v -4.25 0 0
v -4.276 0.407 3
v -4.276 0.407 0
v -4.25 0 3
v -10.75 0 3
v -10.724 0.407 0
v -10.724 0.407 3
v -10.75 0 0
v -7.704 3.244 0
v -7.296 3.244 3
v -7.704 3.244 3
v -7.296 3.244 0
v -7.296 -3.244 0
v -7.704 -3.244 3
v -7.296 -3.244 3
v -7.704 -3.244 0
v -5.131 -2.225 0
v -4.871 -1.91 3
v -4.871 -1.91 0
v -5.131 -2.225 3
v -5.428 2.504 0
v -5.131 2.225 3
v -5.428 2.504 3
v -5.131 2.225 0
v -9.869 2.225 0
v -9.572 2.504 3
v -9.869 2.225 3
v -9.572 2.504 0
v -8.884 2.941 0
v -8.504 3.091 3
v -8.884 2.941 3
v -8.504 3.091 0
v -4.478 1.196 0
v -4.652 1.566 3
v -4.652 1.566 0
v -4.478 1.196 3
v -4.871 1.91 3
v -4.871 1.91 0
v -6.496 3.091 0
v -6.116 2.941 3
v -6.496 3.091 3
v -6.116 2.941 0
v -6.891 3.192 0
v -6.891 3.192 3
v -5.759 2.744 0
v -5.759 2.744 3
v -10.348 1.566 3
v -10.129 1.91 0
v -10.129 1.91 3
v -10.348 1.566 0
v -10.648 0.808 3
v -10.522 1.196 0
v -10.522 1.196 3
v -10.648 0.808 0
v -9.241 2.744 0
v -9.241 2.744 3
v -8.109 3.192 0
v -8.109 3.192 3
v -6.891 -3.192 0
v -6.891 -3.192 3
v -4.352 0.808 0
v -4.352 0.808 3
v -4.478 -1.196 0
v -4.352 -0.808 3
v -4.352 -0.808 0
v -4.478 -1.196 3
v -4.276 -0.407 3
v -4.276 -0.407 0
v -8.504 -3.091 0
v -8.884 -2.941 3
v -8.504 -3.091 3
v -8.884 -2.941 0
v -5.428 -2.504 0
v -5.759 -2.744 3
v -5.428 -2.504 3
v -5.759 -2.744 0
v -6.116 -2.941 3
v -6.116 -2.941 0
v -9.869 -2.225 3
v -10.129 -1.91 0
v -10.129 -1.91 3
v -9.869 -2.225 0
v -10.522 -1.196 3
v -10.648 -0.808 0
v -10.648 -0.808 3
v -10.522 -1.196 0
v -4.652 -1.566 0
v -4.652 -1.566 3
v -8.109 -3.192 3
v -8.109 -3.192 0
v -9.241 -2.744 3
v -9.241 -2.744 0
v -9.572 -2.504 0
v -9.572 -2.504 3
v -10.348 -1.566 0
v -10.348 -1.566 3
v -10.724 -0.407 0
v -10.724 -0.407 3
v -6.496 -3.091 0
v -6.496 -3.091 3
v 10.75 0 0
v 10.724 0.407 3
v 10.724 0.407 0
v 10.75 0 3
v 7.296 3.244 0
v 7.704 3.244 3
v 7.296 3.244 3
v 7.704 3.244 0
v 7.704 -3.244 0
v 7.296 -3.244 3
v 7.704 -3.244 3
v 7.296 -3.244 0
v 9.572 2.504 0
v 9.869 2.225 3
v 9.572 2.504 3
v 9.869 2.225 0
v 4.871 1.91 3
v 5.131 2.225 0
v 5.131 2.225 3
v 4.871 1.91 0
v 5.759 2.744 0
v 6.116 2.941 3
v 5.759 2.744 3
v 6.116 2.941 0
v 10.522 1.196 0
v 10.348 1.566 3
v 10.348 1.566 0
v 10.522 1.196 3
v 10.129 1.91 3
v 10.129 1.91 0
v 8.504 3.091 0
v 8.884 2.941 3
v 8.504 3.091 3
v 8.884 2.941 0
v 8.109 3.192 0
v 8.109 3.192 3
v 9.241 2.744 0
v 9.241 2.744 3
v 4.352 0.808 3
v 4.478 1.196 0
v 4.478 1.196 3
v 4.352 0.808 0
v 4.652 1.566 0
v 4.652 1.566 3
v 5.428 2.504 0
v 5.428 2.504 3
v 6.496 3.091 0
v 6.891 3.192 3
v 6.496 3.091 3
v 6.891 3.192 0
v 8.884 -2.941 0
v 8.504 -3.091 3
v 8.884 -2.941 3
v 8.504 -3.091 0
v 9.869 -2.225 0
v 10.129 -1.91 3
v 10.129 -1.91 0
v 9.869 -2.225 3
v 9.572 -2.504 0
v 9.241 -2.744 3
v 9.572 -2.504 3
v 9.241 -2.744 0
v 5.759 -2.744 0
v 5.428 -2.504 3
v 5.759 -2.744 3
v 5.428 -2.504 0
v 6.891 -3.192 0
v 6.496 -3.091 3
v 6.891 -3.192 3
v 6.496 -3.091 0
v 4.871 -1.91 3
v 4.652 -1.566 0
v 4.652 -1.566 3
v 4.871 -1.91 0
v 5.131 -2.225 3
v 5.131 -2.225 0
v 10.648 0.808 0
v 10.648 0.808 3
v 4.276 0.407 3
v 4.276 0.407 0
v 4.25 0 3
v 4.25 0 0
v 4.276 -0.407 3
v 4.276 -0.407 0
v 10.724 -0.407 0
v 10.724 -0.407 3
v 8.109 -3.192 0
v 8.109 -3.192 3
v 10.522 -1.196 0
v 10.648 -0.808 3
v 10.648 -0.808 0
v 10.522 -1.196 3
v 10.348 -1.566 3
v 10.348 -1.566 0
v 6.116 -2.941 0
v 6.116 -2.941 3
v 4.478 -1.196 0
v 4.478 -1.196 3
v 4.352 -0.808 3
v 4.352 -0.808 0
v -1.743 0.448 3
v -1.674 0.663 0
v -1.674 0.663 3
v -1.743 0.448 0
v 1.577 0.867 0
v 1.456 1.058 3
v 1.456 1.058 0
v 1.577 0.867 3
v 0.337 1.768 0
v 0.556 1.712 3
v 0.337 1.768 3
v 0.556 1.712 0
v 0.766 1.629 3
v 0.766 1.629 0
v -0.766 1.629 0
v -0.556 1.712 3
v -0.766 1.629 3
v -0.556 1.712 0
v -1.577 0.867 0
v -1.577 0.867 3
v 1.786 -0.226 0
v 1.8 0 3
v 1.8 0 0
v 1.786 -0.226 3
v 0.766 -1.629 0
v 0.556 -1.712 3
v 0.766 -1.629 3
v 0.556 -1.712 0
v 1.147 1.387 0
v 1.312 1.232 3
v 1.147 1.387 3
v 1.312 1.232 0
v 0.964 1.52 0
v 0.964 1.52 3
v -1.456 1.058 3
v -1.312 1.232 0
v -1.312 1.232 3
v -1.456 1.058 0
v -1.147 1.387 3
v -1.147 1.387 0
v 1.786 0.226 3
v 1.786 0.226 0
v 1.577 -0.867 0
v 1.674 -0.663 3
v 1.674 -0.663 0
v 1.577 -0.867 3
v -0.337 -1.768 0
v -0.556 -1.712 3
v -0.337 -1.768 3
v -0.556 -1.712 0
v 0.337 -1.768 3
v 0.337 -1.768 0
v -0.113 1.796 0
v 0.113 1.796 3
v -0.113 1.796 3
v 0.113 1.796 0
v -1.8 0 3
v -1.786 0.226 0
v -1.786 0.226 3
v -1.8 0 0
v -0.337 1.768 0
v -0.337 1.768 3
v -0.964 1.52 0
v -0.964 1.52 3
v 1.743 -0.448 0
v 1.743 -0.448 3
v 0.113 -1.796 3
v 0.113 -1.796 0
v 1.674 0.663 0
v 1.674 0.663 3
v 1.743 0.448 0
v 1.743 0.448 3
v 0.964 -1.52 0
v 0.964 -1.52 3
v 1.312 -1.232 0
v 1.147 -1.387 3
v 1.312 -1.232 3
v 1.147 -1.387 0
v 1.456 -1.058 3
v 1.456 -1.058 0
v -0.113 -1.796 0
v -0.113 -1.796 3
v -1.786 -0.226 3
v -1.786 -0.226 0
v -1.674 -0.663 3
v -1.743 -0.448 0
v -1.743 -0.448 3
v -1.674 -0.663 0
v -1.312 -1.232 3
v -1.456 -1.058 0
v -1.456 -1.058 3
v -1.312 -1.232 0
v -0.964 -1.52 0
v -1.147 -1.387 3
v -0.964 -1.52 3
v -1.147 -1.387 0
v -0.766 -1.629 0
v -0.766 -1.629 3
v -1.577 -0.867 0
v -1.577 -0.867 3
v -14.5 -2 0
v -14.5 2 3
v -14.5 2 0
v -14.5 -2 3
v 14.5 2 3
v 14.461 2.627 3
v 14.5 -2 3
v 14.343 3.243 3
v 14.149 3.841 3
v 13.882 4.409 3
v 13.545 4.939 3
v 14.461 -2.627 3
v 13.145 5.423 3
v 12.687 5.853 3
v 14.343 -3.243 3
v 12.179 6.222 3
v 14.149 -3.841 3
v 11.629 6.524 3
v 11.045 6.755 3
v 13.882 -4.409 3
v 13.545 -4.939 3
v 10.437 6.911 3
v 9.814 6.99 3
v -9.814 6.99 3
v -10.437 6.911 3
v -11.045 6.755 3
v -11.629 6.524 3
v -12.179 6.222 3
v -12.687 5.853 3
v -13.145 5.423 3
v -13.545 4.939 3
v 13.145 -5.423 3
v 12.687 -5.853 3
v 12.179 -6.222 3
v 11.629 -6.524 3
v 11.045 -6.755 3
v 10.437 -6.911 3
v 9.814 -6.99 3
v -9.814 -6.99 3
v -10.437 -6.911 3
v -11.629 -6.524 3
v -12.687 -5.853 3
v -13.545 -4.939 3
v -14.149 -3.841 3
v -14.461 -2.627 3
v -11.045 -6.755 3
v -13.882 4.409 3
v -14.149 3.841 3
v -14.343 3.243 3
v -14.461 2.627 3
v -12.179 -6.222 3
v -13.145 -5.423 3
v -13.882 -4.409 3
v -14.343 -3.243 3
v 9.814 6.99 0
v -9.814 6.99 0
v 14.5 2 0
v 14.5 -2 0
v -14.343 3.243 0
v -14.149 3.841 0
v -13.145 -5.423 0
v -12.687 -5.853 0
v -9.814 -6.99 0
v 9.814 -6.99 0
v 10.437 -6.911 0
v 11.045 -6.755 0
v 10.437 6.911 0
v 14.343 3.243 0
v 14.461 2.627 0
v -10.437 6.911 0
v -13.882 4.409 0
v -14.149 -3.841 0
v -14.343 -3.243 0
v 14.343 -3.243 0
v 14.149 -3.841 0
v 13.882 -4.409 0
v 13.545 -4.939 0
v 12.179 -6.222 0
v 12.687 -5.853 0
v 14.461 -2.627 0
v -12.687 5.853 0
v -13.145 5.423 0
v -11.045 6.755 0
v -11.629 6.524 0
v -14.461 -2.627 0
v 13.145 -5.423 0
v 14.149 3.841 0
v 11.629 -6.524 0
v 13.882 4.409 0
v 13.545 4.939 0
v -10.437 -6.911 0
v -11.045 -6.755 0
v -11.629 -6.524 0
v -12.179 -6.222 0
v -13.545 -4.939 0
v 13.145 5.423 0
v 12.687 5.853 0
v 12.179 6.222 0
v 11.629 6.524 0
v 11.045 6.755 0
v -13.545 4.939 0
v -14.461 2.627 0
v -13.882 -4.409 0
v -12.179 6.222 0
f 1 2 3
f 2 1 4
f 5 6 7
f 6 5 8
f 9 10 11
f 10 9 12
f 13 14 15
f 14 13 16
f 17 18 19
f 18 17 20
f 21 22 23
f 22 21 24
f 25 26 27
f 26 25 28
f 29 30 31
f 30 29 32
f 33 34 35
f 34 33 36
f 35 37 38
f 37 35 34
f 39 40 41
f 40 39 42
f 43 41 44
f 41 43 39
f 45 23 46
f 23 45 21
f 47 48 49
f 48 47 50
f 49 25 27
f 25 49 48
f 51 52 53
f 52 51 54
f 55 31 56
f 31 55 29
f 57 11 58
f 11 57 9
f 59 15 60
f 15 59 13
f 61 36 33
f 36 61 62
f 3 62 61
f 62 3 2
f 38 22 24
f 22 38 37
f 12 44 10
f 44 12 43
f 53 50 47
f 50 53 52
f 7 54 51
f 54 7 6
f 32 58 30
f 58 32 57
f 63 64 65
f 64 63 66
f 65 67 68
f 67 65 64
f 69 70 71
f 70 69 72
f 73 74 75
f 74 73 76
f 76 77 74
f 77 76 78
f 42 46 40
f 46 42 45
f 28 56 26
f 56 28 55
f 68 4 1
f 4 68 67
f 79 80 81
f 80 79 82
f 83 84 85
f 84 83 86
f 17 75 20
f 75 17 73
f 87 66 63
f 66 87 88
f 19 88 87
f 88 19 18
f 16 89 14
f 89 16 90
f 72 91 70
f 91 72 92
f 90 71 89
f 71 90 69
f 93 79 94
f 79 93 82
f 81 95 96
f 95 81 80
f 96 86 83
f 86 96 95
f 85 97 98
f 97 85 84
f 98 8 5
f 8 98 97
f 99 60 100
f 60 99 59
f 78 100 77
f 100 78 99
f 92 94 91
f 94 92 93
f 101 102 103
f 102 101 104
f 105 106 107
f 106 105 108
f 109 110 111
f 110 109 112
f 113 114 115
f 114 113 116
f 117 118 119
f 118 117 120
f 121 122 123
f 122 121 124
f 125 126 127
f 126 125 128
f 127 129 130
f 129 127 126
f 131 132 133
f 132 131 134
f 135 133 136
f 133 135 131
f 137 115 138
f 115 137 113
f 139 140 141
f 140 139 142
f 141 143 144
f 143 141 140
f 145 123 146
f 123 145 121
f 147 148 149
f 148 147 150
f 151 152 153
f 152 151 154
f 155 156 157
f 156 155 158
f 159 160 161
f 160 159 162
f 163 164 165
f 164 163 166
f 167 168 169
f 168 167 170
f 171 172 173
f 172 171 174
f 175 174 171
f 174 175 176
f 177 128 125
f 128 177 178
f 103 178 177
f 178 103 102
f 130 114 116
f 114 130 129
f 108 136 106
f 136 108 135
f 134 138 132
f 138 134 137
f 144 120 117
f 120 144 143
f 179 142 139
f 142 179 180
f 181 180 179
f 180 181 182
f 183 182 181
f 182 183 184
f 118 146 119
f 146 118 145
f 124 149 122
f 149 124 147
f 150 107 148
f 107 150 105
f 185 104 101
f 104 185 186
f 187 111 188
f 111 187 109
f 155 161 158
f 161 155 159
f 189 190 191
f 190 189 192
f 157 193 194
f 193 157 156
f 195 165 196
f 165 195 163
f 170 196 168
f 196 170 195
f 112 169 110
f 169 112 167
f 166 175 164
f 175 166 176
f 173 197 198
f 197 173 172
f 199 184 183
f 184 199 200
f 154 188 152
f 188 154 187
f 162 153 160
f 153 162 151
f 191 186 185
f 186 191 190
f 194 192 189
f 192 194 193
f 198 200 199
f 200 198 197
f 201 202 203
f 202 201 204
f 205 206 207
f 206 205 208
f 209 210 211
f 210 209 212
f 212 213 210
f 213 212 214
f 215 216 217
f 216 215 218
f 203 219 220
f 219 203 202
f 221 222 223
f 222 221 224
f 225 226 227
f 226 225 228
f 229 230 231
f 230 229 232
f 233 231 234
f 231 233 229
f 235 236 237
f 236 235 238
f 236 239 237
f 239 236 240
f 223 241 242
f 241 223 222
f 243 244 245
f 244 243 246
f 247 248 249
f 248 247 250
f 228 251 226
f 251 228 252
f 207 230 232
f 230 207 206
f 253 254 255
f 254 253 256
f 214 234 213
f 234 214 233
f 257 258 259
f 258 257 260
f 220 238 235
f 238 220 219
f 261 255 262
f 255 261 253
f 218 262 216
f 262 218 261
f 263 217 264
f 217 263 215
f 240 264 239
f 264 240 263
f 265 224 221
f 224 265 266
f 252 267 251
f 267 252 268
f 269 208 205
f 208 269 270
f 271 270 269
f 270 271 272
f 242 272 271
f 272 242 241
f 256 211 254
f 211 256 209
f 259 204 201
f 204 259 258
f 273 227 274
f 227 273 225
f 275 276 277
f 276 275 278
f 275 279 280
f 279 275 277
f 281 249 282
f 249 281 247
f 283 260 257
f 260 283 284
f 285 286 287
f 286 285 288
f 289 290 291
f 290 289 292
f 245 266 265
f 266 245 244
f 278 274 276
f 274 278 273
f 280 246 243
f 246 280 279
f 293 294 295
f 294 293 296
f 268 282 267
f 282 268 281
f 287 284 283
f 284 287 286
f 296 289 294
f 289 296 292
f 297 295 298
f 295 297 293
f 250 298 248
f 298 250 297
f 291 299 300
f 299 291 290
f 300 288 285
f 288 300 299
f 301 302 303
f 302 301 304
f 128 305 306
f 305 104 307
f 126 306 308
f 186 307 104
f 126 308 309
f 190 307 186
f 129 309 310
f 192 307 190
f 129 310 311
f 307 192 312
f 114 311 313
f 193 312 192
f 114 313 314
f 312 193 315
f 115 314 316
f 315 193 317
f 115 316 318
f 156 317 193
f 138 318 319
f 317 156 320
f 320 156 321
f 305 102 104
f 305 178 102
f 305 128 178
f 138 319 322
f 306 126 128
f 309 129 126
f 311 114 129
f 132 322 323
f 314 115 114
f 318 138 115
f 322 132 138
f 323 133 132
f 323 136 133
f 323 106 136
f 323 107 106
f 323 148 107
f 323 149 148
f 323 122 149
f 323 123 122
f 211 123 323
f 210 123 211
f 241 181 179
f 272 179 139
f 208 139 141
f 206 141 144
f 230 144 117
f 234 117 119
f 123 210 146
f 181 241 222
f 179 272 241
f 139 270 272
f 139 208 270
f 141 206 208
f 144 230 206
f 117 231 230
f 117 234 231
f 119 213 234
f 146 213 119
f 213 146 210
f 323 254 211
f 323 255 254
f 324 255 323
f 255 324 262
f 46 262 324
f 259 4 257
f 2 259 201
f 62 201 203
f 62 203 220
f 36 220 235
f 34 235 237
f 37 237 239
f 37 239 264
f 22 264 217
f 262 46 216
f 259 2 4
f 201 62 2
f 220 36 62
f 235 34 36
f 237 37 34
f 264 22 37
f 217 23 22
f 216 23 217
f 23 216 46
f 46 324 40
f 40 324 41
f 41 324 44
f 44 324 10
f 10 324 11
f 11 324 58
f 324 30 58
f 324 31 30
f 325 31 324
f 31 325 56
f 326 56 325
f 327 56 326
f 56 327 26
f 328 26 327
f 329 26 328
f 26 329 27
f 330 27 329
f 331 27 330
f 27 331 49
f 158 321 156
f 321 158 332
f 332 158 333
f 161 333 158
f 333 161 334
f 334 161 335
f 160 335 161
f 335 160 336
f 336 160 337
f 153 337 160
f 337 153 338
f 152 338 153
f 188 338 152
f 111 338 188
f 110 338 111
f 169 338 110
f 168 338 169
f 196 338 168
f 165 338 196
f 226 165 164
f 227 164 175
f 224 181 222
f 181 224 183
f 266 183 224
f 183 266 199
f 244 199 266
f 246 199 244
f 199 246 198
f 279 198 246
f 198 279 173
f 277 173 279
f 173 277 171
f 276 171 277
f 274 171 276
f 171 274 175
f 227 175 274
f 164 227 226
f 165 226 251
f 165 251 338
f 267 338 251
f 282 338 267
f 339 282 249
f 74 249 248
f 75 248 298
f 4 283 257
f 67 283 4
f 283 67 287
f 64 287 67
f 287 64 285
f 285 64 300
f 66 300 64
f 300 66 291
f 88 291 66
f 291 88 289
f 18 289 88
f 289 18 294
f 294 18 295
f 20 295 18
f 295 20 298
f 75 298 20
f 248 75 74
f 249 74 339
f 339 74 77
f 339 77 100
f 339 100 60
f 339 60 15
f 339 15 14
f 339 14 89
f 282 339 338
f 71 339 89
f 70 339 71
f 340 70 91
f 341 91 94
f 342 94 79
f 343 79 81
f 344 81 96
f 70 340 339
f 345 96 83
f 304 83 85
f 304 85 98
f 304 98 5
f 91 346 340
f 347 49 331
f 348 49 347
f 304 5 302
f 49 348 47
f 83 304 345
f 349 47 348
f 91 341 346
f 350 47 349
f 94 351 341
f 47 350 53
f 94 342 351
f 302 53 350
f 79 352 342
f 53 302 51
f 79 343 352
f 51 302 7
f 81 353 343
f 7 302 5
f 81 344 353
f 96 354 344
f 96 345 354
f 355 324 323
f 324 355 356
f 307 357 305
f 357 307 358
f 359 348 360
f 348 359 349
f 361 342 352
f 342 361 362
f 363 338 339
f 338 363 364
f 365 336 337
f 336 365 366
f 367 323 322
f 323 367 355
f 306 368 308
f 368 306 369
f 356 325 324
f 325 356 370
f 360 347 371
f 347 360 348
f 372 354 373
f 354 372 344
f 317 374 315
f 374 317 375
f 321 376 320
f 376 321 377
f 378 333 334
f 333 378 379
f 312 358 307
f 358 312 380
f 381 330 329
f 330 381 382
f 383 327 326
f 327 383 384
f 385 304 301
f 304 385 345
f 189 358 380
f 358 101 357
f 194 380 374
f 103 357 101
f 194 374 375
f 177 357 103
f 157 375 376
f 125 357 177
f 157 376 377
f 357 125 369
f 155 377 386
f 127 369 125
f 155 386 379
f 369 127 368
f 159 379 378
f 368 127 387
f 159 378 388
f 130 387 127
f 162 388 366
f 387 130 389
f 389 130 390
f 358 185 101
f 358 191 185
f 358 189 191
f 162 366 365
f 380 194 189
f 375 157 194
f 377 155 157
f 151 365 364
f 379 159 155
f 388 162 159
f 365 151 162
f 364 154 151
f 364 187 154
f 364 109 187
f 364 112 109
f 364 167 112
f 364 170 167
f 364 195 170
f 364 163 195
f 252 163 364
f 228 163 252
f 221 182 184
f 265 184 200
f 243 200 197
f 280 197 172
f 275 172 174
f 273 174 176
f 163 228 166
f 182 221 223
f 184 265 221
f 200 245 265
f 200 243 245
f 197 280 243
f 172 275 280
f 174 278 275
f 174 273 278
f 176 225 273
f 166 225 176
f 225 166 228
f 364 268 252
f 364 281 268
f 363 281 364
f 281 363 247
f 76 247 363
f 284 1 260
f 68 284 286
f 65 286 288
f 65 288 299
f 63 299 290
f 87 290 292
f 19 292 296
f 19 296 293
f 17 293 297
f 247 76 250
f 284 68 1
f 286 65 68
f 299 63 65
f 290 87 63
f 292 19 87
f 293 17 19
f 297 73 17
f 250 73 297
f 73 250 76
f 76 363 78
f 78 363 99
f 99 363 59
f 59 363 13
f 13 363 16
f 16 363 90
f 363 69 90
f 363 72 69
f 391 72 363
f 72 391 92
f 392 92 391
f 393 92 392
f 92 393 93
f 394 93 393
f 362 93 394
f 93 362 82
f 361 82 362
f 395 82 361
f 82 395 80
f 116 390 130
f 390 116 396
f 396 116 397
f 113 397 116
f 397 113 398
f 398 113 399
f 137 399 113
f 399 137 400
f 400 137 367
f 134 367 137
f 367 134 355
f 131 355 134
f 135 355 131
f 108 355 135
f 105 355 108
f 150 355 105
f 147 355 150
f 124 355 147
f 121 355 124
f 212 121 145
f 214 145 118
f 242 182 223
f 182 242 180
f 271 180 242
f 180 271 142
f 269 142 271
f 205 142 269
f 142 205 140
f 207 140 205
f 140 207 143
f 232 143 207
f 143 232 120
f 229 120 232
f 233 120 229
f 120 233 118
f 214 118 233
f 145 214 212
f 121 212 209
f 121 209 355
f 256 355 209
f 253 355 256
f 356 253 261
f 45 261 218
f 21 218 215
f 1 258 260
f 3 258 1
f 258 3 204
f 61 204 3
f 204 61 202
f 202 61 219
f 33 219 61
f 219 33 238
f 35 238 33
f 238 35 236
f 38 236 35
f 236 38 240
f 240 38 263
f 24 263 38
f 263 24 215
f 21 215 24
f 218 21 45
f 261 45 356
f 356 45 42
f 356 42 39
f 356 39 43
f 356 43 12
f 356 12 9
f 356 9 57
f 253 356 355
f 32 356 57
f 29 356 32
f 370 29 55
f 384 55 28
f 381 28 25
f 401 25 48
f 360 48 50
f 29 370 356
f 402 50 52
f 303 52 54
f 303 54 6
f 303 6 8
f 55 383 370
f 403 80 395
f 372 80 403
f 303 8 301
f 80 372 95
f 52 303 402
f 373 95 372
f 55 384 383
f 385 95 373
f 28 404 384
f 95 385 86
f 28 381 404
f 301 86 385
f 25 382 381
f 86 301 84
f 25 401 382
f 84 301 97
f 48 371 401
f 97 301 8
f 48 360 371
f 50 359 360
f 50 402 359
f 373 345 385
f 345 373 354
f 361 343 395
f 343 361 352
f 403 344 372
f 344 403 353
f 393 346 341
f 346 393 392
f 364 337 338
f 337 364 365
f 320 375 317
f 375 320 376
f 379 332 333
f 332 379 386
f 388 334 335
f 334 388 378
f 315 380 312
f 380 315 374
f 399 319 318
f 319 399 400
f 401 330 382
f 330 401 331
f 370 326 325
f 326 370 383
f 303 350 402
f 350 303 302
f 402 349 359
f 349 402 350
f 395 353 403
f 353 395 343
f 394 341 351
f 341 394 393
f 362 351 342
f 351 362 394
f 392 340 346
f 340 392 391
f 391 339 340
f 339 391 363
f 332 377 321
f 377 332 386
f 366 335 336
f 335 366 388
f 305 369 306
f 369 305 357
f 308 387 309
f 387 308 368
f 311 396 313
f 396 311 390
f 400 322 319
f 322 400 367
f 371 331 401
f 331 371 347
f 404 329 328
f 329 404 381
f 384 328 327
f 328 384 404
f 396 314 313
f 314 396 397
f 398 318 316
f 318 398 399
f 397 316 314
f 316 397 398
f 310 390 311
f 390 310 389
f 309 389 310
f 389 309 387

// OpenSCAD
$fn = 50;


difference() {
	union() {
		translate(v = [0, 0, 0]) {
			rotate(a = [0, 0, 0]) {
				hull() {
					translate(v = [-9.5000000000, 2.0000000000, 0]) {
						rotate(a = [0, 0, 0]) {
							translate(v = [0, 0, 0]) {
								rotate(a = [0, 0, 0]) {
									cylinder(h = 3, r = 5);
								}
							}
						}
					}
					translate(v = [9.5000000000, 2.0000000000, 0]) {
						rotate(a = [0, 0, 0]) {
							translate(v = [0, 0, 0]) {
								rotate(a = [0, 0, 0]) {
									cylinder(h = 3, r = 5);
								}
							}
						}
					}
					translate(v = [-9.5000000000, -2.0000000000, 0]) {
						rotate(a = [0, 0, 0]) {
							translate(v = [0, 0, 0]) {
								rotate(a = [0, 0, 0]) {
									cylinder(h = 3, r = 5);
								}
							}
						}
					}
					translate(v = [9.5000000000, -2.0000000000, 0]) {
						rotate(a = [0, 0, 0]) {
							translate(v = [0, 0, 0]) {
								rotate(a = [0, 0, 0]) {
									cylinder(h = 3, r = 5);
								}
							}
						}
					}
				}
			}
		}
	}
	union() {
		translate(v = [-7.5000000000, 0.0000000000, 0]) {
			rotate(a = [0, 0, 0]) {
				translate(v = [0, 0, -50]) {
					rotate(a = [0, 0, 0]) {
						cylinder(h = 100, r = 3.2500000000);
					}
				}
			}
		}
		translate(v = [7.5000000000, 0.0000000000, 0]) {
			rotate(a = [0, 0, 0]) {
				translate(v = [0, 0, -50]) {
					rotate(a = [0, 0, 0]) {
						cylinder(h = 100, r = 3.2500000000);
					}
				}
			}
		}
		translate(v = [-7.5000000000, 0.0000000000, 0]) {
			rotate(a = [0, 0, 0]) {
				translate(v = [0, 0, -50]) {
					rotate(a = [0, 0, 0]) {
						cylinder(h = 100, r = 1.8000000000);
					}
				}
			}
		}
		translate(v = [0.0000000000, 0.0000000000, 0]) {
			rotate(a = [0, 0, 0]) {
				translate(v = [0, 0, -50]) {
					rotate(a = [0, 0, 0]) {
						cylinder(h = 100, r = 1.8000000000);
					}
				}
			}
		}
		translate(v = [7.5000000000, 0.0000000000, 0]) {
			rotate(a = [0, 0, 0]) {
				translate(v = [0, 0, -50]) {
					rotate(a = [0, 0, 0]) {
						cylinder(h = 100, r = 1.8000000000);
					}
				}
			}
		}
	}
}
